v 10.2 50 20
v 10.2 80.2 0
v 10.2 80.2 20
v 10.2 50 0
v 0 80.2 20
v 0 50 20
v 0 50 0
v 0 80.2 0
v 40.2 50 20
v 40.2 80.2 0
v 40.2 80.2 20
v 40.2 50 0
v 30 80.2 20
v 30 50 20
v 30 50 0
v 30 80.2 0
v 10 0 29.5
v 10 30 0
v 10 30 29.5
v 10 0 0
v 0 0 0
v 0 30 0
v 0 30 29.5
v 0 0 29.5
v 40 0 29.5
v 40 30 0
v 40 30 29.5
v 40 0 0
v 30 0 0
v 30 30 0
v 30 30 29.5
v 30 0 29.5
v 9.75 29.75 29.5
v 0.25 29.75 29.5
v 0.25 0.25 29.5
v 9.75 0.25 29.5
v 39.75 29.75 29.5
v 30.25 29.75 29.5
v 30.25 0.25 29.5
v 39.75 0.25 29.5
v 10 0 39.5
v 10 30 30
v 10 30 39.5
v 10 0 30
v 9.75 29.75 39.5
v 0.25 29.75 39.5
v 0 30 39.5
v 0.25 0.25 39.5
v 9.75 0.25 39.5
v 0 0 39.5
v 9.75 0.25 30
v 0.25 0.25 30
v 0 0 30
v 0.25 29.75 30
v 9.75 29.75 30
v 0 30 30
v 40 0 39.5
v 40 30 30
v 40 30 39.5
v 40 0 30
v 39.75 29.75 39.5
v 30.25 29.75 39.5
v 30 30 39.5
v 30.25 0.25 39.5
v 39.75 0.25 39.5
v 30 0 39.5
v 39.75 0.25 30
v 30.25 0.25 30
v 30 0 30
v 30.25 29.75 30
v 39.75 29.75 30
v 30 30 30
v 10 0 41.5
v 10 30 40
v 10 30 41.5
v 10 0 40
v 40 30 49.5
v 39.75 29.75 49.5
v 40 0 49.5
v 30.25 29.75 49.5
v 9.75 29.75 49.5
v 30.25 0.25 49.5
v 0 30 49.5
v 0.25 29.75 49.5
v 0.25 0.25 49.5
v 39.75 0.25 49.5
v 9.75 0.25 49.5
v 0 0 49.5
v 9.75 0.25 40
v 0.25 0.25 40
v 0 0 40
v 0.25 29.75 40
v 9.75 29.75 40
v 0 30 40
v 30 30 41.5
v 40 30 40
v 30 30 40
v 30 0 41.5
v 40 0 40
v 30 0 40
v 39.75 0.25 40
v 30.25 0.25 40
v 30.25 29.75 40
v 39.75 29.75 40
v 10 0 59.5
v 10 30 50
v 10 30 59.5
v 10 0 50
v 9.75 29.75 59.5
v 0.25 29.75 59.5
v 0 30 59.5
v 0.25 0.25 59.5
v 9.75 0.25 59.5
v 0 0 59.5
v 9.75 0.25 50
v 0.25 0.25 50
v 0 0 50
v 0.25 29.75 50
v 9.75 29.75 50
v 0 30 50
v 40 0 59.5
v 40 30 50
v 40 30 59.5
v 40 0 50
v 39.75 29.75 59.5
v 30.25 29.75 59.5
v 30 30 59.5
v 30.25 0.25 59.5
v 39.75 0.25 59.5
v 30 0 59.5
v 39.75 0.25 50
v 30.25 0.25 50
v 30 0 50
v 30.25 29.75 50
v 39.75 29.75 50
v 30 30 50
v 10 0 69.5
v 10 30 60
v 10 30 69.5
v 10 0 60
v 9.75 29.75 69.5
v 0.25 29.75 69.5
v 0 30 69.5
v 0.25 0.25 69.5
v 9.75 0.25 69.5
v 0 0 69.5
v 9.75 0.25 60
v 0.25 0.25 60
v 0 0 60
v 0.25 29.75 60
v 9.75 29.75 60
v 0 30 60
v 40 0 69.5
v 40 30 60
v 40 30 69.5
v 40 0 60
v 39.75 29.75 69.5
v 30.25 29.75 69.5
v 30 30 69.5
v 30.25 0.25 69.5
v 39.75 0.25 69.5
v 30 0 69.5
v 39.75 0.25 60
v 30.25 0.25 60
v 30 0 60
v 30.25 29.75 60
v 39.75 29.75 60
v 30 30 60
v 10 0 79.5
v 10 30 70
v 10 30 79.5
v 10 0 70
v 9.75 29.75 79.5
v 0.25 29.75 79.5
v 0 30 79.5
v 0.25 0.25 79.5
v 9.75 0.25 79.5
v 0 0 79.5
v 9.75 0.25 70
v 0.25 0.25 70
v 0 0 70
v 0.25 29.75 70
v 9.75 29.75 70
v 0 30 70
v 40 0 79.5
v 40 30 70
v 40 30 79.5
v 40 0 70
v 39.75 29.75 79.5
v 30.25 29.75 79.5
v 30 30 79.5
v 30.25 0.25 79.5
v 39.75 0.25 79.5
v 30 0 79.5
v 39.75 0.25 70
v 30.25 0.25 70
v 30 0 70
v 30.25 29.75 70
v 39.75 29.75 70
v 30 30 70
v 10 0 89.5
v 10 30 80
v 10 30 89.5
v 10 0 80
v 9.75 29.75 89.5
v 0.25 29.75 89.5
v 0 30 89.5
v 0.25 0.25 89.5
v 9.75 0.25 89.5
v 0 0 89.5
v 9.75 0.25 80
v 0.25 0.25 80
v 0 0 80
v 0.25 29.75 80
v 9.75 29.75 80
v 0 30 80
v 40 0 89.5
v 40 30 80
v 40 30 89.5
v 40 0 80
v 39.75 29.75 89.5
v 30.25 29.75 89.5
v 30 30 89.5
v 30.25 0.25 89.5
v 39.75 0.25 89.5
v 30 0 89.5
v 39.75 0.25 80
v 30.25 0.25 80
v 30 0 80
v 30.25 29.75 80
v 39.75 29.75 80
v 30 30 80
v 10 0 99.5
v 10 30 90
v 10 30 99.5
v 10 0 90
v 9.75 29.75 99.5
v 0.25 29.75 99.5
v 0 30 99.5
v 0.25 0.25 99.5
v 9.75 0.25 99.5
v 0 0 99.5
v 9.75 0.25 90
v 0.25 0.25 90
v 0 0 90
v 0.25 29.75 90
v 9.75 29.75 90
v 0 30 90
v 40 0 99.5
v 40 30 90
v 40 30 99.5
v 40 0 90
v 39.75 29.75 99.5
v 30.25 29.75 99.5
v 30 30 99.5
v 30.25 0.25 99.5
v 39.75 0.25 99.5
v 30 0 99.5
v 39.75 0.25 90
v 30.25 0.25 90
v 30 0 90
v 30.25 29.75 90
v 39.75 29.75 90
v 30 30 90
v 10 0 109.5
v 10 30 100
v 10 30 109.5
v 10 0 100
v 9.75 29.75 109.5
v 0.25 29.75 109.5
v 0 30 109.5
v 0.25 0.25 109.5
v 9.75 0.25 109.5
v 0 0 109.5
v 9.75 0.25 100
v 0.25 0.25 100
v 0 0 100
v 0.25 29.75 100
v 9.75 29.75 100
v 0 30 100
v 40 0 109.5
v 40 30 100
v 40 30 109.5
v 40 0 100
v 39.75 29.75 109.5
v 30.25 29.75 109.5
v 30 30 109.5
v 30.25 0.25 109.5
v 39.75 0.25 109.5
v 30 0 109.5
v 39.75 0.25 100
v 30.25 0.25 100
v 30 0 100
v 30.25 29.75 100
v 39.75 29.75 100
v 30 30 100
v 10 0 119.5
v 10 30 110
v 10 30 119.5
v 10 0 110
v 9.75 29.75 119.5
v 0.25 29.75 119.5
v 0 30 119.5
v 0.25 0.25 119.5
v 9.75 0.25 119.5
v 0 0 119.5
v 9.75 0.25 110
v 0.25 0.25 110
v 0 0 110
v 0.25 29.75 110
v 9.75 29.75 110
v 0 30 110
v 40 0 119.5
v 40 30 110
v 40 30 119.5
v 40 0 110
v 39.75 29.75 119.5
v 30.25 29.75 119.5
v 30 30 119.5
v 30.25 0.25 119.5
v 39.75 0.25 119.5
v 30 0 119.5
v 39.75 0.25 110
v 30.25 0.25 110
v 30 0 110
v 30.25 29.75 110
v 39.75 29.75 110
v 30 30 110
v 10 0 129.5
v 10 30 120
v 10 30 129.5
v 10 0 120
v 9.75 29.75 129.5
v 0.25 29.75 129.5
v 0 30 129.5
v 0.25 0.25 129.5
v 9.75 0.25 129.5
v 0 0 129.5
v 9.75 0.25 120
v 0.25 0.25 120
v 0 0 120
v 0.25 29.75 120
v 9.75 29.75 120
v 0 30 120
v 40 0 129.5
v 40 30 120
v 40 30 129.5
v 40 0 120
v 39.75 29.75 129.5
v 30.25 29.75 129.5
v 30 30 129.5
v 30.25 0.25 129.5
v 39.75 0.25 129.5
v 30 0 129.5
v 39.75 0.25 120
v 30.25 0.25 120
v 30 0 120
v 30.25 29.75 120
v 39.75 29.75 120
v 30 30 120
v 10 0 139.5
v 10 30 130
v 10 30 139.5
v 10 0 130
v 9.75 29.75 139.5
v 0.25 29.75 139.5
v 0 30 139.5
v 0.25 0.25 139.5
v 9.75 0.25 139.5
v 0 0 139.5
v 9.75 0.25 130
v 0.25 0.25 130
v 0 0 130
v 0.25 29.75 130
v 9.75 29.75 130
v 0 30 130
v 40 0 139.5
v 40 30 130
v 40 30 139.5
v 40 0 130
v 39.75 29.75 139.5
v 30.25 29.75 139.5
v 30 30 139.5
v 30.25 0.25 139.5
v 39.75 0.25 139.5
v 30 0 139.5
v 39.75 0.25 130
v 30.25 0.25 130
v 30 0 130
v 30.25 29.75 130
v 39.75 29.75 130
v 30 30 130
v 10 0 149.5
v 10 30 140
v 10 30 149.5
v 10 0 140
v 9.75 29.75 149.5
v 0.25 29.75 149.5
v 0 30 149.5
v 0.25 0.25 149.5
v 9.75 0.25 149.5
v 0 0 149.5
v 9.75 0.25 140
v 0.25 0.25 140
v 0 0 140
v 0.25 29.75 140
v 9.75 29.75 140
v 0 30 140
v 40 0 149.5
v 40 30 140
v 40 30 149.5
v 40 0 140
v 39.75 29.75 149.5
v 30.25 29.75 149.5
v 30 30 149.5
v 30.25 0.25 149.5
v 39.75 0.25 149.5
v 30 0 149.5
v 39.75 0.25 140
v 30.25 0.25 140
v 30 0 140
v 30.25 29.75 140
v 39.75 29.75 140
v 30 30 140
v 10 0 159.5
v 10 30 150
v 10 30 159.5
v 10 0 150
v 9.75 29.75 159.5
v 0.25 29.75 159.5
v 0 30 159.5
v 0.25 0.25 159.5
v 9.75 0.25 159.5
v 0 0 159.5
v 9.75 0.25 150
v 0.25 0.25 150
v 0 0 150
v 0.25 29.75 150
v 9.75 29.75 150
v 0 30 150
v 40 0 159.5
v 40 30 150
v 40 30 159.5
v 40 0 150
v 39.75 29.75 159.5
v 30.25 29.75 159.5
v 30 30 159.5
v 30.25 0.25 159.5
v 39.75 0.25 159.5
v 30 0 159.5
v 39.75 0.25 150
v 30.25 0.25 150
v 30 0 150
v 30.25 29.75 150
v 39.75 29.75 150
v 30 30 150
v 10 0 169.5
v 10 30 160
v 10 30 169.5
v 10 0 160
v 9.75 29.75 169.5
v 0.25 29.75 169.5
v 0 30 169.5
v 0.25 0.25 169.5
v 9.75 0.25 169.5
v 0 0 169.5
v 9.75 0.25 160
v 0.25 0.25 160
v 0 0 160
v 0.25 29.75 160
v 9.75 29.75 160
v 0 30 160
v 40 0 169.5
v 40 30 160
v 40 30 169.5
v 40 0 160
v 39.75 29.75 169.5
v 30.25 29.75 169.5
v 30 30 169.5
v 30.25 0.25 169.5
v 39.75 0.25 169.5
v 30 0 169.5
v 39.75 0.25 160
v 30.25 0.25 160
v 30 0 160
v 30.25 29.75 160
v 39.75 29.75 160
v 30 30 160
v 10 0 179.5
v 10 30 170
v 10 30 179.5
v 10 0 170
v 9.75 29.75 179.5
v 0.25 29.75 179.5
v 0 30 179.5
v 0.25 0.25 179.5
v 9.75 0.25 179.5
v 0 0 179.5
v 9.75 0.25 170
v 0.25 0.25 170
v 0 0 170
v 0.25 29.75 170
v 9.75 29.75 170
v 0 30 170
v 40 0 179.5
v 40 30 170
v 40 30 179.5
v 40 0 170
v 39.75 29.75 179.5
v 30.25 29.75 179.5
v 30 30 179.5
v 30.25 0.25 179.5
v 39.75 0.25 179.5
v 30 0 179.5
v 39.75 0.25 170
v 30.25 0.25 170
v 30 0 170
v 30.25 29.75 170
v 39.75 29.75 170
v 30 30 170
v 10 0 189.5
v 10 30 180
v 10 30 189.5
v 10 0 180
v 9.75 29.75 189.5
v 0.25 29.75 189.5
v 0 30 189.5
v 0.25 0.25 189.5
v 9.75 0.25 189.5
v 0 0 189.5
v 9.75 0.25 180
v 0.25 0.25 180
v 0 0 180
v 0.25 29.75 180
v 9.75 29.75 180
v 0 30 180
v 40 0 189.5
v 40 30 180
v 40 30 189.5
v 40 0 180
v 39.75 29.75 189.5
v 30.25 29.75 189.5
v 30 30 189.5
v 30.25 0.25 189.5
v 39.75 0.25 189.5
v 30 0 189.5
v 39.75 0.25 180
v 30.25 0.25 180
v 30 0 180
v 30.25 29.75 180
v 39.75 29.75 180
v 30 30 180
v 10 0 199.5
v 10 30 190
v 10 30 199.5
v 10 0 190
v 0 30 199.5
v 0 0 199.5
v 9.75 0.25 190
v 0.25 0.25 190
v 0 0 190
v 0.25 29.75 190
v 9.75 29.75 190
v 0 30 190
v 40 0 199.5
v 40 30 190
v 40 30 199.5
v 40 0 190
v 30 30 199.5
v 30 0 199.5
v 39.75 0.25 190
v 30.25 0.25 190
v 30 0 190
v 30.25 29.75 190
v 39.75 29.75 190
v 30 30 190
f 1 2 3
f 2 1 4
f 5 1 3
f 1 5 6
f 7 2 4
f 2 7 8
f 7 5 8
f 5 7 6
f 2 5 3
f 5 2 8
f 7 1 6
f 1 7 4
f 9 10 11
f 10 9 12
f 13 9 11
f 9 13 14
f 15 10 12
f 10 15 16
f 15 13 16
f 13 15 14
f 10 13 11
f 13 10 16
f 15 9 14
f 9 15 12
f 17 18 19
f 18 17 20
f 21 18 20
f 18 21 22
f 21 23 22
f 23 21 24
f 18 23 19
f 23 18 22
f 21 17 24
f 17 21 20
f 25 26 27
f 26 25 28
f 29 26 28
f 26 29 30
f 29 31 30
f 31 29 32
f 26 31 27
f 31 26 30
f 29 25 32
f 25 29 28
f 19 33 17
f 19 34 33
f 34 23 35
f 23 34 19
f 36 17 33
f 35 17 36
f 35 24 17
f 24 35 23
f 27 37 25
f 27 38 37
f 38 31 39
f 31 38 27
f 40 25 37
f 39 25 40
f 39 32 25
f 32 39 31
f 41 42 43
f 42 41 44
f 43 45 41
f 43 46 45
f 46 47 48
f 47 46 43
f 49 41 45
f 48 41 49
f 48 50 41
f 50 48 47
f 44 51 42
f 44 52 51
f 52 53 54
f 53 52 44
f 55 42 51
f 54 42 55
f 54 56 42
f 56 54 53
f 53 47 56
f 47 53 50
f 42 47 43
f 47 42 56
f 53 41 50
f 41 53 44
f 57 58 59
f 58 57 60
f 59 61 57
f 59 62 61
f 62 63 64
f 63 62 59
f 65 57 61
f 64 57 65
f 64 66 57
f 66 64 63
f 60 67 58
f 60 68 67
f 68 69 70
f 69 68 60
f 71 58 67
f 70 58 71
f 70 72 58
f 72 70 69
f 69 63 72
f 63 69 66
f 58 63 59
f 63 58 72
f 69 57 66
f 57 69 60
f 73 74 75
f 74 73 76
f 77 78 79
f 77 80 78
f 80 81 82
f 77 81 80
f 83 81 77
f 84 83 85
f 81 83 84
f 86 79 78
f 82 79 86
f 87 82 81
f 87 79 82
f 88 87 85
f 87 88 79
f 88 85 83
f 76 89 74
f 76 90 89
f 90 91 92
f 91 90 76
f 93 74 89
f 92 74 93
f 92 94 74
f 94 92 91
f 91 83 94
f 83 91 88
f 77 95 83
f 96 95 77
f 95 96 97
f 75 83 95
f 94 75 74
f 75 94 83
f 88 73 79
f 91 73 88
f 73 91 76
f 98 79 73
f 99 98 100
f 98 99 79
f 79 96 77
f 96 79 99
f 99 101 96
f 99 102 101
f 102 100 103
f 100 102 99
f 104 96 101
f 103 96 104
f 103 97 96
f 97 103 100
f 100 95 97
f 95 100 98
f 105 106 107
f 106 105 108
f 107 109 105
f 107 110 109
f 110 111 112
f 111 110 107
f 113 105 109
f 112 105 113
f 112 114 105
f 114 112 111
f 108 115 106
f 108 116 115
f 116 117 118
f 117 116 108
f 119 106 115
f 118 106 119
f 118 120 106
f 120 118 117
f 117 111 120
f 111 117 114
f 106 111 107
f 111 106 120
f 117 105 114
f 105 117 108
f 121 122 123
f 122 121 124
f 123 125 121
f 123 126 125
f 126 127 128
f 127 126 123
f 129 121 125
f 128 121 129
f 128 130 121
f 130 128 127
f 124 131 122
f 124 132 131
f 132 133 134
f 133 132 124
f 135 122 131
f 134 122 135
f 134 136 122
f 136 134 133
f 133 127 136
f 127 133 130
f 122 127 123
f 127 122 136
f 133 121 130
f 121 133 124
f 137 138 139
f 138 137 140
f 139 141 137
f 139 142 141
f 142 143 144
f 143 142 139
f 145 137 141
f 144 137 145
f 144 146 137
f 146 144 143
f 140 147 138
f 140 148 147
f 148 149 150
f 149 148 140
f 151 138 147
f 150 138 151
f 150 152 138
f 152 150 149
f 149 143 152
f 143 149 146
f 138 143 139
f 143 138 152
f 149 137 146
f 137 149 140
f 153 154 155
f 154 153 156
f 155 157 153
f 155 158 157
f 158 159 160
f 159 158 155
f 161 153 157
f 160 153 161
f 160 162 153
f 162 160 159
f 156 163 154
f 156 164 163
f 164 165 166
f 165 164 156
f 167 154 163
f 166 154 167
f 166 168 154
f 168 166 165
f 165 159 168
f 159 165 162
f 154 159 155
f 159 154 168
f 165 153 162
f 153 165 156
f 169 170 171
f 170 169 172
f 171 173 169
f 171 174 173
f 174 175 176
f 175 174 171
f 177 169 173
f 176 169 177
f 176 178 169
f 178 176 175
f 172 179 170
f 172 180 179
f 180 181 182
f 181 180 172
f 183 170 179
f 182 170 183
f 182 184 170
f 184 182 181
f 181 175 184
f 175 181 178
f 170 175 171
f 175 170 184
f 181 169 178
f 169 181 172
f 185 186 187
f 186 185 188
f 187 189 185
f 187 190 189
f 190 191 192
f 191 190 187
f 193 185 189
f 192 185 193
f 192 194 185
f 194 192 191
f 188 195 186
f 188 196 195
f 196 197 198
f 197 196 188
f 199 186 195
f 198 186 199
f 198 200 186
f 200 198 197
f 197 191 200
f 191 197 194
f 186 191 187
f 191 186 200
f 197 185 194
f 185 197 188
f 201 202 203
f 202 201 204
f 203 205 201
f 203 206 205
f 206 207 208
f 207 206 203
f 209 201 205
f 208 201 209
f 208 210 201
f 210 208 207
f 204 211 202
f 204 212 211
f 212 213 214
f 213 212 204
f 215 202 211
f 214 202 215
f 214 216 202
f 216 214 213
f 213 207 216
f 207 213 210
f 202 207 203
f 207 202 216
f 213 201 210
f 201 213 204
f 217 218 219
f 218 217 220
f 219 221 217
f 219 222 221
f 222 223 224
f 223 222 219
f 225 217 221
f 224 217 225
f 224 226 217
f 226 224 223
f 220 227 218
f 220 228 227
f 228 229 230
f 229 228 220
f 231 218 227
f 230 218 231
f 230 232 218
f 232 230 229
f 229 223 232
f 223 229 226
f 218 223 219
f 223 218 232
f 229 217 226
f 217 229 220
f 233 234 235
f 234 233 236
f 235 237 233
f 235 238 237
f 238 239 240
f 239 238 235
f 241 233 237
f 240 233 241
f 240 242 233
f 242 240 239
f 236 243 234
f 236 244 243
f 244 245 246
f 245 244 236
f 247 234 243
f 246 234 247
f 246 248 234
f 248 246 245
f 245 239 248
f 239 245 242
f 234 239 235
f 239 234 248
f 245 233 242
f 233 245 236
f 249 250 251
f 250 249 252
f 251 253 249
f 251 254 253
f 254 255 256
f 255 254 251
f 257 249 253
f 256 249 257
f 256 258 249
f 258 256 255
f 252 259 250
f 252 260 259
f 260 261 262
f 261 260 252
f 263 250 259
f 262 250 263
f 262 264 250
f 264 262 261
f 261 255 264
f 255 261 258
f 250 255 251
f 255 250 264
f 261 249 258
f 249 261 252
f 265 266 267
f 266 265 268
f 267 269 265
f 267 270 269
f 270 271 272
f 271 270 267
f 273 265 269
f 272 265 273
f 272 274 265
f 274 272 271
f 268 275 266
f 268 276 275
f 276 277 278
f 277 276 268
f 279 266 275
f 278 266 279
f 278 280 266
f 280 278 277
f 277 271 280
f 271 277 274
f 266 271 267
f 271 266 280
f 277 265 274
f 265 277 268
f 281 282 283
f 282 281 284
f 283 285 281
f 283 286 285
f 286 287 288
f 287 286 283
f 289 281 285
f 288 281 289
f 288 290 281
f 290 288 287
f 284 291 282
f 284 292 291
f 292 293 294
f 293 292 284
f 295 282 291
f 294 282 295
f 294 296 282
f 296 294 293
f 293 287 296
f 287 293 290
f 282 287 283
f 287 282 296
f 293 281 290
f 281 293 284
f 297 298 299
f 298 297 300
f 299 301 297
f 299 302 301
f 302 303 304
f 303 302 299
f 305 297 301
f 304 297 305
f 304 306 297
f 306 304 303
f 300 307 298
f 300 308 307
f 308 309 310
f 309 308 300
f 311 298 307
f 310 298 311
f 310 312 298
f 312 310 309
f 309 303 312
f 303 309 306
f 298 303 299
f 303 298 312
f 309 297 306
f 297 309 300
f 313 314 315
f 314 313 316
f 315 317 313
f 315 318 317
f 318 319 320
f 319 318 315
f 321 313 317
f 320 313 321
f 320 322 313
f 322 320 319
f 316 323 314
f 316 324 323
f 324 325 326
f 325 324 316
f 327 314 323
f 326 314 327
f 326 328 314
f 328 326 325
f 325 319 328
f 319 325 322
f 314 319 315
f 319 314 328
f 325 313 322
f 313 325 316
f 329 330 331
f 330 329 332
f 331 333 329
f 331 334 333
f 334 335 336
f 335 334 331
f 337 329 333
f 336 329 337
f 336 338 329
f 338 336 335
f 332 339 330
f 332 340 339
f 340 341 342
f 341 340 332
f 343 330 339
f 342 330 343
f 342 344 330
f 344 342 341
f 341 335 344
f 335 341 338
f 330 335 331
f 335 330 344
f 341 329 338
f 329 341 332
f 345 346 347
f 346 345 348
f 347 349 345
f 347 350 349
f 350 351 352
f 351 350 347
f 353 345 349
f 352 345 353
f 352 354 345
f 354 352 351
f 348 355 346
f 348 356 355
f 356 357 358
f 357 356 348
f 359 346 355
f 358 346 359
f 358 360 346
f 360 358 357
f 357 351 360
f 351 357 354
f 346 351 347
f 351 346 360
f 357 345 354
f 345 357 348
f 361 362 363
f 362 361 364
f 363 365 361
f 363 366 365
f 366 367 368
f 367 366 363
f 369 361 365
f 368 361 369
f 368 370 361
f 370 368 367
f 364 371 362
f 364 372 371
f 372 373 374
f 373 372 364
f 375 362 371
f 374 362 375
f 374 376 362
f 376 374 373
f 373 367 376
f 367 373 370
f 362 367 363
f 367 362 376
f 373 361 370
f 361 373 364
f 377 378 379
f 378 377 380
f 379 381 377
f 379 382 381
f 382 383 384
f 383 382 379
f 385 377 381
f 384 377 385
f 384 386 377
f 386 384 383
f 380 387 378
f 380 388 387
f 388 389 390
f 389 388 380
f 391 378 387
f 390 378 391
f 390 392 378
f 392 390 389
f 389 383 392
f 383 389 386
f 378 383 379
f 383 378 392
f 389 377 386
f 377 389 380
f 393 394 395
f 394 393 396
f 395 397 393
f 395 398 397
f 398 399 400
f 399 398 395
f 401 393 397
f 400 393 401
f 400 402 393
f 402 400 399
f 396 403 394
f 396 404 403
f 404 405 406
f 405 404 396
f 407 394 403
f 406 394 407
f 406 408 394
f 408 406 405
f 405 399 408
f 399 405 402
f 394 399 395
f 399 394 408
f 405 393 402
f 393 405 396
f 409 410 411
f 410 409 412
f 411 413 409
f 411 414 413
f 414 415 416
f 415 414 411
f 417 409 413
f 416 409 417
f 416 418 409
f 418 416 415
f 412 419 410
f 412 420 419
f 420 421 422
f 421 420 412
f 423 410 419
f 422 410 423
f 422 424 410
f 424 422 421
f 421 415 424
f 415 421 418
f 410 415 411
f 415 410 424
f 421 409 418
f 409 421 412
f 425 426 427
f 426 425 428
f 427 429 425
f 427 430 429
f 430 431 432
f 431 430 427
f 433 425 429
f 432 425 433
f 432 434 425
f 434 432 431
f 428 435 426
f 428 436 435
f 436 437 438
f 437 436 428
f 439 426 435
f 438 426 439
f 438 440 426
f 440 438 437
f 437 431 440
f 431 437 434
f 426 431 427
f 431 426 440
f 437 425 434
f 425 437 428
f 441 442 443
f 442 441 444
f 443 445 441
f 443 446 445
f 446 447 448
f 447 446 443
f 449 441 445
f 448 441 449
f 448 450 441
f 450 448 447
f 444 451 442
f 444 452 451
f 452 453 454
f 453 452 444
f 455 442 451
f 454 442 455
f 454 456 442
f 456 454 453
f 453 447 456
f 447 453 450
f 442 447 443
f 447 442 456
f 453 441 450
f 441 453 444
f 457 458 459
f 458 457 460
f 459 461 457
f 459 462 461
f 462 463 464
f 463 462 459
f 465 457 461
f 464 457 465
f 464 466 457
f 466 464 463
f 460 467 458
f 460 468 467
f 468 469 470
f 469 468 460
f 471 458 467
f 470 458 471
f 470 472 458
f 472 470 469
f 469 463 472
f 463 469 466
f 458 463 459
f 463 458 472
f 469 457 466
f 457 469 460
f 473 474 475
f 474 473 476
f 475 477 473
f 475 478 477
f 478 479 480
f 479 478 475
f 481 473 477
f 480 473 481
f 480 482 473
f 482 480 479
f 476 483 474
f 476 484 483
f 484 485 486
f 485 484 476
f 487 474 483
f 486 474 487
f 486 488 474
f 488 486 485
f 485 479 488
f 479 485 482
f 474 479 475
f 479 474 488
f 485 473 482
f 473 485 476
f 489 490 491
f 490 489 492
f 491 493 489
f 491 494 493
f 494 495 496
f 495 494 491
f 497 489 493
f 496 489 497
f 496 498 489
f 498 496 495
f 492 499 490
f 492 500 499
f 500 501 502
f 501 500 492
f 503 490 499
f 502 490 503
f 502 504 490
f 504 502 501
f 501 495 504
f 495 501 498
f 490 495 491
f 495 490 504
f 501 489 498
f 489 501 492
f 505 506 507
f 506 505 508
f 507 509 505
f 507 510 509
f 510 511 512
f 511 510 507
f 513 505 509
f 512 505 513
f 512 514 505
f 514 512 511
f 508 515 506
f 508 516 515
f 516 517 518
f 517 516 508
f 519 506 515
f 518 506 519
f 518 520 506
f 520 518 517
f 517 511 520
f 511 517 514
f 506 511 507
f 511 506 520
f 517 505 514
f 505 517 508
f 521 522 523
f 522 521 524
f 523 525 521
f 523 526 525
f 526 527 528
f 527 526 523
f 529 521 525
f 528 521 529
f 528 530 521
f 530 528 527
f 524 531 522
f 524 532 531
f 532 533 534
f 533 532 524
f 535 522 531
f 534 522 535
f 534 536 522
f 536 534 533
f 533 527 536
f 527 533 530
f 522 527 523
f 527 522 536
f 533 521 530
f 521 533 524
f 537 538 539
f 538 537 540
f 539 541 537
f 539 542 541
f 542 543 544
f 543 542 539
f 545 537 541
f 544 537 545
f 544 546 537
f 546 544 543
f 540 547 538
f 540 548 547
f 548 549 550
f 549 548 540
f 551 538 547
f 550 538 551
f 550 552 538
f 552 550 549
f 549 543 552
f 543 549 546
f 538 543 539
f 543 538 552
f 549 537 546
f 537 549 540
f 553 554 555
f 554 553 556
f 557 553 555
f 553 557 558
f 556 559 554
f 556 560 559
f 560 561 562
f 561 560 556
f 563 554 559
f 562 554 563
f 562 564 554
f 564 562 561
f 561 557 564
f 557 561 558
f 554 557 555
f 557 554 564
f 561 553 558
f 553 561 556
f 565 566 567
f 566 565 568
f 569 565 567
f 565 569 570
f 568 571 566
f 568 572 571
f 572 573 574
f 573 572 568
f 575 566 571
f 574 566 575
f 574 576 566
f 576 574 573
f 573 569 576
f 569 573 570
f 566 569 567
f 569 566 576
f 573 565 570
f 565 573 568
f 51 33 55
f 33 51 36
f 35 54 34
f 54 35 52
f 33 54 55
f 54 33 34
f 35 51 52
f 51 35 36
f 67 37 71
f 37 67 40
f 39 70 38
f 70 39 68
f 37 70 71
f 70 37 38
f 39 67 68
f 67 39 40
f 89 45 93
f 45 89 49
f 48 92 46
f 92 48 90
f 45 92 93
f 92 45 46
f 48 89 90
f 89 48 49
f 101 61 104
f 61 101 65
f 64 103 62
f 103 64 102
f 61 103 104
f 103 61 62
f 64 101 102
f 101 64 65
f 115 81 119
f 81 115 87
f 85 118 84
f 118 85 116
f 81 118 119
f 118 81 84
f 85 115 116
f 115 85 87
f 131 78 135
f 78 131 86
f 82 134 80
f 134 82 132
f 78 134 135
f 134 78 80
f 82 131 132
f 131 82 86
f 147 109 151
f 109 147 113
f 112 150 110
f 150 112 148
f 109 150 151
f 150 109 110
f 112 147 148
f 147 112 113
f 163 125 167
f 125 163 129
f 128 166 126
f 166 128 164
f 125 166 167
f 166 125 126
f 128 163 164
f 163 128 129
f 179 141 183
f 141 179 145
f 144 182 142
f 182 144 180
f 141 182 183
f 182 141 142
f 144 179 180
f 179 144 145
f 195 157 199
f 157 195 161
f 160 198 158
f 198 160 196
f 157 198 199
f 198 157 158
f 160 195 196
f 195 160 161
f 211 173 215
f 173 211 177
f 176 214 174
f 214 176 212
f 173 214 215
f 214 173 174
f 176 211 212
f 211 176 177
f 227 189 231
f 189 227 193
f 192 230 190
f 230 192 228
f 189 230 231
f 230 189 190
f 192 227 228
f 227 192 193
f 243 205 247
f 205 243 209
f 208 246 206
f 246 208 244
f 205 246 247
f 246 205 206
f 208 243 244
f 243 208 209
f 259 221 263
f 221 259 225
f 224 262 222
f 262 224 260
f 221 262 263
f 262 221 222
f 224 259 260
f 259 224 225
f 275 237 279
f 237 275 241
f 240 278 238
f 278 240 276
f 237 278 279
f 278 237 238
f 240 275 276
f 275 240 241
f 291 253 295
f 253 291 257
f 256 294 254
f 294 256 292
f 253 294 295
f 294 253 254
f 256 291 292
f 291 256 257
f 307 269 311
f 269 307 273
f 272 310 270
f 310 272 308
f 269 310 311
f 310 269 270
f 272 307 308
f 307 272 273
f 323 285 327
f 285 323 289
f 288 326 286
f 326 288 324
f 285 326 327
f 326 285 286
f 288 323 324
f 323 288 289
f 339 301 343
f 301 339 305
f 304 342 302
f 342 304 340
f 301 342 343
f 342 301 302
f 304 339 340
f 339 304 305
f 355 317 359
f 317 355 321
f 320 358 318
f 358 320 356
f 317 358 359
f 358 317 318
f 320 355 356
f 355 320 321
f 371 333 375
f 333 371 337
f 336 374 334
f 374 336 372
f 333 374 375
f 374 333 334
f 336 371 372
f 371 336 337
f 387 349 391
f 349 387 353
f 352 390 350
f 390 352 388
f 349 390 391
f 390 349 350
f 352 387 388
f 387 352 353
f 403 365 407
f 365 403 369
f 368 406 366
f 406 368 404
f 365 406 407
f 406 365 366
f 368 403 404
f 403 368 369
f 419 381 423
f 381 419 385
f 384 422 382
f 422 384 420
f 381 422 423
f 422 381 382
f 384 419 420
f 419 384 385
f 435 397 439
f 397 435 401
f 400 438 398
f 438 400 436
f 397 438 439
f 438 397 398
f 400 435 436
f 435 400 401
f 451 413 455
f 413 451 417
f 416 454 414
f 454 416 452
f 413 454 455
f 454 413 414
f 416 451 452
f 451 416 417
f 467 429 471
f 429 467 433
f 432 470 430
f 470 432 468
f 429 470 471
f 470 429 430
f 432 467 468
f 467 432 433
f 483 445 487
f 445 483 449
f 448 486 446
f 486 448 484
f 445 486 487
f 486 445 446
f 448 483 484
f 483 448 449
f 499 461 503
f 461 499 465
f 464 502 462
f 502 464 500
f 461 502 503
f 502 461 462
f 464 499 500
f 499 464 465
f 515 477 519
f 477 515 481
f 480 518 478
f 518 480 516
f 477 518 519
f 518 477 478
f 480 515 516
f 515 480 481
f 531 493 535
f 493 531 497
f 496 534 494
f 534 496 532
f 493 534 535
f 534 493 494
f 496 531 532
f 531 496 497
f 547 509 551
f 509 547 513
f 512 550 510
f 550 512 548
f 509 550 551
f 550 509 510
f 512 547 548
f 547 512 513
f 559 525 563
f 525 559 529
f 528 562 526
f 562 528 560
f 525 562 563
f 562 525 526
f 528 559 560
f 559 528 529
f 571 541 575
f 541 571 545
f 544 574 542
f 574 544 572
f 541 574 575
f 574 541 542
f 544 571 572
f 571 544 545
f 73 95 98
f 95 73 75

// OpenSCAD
tolerance = 0.1;
module towers(){
for(i=[0:10:170]){
translate([0,0,i]){
cube([10,30,9.5]);

translate([30,0,0]){
cube([10,30,9.5]);
}//end translate

}//end translate
}//end for


for(i=[9.5:10:170]){
    translate([.250,.250,i-0.25]){
    cube([9.5,29.5,1]);
    }
    translate([30.250,.250,i-0.25]){
    cube([9.5,29.5,1]);
    }
    
}

translate([0 ,0,21.5]){
cube([40,30,8]);
}
}


module hole_makers(tolerance = 0.1){
    translate([0,0,0]){
cube([10+2*tolerance,30+2*tolerance,20]);

translate([30,0,0]){
cube([10+2*tolerance,30+2*tolerance,20]);
}//end translate

}//end translate
    
    }//end module
//translate([5,5,19.9]){
translate([0,50,0]){    
color("red")
hole_makers();
}
union(){
    hole_makers(tolerance=0);
translate([0,0,20]){
towers();
}
}//end union
//}
//cube([50,50,20]);
